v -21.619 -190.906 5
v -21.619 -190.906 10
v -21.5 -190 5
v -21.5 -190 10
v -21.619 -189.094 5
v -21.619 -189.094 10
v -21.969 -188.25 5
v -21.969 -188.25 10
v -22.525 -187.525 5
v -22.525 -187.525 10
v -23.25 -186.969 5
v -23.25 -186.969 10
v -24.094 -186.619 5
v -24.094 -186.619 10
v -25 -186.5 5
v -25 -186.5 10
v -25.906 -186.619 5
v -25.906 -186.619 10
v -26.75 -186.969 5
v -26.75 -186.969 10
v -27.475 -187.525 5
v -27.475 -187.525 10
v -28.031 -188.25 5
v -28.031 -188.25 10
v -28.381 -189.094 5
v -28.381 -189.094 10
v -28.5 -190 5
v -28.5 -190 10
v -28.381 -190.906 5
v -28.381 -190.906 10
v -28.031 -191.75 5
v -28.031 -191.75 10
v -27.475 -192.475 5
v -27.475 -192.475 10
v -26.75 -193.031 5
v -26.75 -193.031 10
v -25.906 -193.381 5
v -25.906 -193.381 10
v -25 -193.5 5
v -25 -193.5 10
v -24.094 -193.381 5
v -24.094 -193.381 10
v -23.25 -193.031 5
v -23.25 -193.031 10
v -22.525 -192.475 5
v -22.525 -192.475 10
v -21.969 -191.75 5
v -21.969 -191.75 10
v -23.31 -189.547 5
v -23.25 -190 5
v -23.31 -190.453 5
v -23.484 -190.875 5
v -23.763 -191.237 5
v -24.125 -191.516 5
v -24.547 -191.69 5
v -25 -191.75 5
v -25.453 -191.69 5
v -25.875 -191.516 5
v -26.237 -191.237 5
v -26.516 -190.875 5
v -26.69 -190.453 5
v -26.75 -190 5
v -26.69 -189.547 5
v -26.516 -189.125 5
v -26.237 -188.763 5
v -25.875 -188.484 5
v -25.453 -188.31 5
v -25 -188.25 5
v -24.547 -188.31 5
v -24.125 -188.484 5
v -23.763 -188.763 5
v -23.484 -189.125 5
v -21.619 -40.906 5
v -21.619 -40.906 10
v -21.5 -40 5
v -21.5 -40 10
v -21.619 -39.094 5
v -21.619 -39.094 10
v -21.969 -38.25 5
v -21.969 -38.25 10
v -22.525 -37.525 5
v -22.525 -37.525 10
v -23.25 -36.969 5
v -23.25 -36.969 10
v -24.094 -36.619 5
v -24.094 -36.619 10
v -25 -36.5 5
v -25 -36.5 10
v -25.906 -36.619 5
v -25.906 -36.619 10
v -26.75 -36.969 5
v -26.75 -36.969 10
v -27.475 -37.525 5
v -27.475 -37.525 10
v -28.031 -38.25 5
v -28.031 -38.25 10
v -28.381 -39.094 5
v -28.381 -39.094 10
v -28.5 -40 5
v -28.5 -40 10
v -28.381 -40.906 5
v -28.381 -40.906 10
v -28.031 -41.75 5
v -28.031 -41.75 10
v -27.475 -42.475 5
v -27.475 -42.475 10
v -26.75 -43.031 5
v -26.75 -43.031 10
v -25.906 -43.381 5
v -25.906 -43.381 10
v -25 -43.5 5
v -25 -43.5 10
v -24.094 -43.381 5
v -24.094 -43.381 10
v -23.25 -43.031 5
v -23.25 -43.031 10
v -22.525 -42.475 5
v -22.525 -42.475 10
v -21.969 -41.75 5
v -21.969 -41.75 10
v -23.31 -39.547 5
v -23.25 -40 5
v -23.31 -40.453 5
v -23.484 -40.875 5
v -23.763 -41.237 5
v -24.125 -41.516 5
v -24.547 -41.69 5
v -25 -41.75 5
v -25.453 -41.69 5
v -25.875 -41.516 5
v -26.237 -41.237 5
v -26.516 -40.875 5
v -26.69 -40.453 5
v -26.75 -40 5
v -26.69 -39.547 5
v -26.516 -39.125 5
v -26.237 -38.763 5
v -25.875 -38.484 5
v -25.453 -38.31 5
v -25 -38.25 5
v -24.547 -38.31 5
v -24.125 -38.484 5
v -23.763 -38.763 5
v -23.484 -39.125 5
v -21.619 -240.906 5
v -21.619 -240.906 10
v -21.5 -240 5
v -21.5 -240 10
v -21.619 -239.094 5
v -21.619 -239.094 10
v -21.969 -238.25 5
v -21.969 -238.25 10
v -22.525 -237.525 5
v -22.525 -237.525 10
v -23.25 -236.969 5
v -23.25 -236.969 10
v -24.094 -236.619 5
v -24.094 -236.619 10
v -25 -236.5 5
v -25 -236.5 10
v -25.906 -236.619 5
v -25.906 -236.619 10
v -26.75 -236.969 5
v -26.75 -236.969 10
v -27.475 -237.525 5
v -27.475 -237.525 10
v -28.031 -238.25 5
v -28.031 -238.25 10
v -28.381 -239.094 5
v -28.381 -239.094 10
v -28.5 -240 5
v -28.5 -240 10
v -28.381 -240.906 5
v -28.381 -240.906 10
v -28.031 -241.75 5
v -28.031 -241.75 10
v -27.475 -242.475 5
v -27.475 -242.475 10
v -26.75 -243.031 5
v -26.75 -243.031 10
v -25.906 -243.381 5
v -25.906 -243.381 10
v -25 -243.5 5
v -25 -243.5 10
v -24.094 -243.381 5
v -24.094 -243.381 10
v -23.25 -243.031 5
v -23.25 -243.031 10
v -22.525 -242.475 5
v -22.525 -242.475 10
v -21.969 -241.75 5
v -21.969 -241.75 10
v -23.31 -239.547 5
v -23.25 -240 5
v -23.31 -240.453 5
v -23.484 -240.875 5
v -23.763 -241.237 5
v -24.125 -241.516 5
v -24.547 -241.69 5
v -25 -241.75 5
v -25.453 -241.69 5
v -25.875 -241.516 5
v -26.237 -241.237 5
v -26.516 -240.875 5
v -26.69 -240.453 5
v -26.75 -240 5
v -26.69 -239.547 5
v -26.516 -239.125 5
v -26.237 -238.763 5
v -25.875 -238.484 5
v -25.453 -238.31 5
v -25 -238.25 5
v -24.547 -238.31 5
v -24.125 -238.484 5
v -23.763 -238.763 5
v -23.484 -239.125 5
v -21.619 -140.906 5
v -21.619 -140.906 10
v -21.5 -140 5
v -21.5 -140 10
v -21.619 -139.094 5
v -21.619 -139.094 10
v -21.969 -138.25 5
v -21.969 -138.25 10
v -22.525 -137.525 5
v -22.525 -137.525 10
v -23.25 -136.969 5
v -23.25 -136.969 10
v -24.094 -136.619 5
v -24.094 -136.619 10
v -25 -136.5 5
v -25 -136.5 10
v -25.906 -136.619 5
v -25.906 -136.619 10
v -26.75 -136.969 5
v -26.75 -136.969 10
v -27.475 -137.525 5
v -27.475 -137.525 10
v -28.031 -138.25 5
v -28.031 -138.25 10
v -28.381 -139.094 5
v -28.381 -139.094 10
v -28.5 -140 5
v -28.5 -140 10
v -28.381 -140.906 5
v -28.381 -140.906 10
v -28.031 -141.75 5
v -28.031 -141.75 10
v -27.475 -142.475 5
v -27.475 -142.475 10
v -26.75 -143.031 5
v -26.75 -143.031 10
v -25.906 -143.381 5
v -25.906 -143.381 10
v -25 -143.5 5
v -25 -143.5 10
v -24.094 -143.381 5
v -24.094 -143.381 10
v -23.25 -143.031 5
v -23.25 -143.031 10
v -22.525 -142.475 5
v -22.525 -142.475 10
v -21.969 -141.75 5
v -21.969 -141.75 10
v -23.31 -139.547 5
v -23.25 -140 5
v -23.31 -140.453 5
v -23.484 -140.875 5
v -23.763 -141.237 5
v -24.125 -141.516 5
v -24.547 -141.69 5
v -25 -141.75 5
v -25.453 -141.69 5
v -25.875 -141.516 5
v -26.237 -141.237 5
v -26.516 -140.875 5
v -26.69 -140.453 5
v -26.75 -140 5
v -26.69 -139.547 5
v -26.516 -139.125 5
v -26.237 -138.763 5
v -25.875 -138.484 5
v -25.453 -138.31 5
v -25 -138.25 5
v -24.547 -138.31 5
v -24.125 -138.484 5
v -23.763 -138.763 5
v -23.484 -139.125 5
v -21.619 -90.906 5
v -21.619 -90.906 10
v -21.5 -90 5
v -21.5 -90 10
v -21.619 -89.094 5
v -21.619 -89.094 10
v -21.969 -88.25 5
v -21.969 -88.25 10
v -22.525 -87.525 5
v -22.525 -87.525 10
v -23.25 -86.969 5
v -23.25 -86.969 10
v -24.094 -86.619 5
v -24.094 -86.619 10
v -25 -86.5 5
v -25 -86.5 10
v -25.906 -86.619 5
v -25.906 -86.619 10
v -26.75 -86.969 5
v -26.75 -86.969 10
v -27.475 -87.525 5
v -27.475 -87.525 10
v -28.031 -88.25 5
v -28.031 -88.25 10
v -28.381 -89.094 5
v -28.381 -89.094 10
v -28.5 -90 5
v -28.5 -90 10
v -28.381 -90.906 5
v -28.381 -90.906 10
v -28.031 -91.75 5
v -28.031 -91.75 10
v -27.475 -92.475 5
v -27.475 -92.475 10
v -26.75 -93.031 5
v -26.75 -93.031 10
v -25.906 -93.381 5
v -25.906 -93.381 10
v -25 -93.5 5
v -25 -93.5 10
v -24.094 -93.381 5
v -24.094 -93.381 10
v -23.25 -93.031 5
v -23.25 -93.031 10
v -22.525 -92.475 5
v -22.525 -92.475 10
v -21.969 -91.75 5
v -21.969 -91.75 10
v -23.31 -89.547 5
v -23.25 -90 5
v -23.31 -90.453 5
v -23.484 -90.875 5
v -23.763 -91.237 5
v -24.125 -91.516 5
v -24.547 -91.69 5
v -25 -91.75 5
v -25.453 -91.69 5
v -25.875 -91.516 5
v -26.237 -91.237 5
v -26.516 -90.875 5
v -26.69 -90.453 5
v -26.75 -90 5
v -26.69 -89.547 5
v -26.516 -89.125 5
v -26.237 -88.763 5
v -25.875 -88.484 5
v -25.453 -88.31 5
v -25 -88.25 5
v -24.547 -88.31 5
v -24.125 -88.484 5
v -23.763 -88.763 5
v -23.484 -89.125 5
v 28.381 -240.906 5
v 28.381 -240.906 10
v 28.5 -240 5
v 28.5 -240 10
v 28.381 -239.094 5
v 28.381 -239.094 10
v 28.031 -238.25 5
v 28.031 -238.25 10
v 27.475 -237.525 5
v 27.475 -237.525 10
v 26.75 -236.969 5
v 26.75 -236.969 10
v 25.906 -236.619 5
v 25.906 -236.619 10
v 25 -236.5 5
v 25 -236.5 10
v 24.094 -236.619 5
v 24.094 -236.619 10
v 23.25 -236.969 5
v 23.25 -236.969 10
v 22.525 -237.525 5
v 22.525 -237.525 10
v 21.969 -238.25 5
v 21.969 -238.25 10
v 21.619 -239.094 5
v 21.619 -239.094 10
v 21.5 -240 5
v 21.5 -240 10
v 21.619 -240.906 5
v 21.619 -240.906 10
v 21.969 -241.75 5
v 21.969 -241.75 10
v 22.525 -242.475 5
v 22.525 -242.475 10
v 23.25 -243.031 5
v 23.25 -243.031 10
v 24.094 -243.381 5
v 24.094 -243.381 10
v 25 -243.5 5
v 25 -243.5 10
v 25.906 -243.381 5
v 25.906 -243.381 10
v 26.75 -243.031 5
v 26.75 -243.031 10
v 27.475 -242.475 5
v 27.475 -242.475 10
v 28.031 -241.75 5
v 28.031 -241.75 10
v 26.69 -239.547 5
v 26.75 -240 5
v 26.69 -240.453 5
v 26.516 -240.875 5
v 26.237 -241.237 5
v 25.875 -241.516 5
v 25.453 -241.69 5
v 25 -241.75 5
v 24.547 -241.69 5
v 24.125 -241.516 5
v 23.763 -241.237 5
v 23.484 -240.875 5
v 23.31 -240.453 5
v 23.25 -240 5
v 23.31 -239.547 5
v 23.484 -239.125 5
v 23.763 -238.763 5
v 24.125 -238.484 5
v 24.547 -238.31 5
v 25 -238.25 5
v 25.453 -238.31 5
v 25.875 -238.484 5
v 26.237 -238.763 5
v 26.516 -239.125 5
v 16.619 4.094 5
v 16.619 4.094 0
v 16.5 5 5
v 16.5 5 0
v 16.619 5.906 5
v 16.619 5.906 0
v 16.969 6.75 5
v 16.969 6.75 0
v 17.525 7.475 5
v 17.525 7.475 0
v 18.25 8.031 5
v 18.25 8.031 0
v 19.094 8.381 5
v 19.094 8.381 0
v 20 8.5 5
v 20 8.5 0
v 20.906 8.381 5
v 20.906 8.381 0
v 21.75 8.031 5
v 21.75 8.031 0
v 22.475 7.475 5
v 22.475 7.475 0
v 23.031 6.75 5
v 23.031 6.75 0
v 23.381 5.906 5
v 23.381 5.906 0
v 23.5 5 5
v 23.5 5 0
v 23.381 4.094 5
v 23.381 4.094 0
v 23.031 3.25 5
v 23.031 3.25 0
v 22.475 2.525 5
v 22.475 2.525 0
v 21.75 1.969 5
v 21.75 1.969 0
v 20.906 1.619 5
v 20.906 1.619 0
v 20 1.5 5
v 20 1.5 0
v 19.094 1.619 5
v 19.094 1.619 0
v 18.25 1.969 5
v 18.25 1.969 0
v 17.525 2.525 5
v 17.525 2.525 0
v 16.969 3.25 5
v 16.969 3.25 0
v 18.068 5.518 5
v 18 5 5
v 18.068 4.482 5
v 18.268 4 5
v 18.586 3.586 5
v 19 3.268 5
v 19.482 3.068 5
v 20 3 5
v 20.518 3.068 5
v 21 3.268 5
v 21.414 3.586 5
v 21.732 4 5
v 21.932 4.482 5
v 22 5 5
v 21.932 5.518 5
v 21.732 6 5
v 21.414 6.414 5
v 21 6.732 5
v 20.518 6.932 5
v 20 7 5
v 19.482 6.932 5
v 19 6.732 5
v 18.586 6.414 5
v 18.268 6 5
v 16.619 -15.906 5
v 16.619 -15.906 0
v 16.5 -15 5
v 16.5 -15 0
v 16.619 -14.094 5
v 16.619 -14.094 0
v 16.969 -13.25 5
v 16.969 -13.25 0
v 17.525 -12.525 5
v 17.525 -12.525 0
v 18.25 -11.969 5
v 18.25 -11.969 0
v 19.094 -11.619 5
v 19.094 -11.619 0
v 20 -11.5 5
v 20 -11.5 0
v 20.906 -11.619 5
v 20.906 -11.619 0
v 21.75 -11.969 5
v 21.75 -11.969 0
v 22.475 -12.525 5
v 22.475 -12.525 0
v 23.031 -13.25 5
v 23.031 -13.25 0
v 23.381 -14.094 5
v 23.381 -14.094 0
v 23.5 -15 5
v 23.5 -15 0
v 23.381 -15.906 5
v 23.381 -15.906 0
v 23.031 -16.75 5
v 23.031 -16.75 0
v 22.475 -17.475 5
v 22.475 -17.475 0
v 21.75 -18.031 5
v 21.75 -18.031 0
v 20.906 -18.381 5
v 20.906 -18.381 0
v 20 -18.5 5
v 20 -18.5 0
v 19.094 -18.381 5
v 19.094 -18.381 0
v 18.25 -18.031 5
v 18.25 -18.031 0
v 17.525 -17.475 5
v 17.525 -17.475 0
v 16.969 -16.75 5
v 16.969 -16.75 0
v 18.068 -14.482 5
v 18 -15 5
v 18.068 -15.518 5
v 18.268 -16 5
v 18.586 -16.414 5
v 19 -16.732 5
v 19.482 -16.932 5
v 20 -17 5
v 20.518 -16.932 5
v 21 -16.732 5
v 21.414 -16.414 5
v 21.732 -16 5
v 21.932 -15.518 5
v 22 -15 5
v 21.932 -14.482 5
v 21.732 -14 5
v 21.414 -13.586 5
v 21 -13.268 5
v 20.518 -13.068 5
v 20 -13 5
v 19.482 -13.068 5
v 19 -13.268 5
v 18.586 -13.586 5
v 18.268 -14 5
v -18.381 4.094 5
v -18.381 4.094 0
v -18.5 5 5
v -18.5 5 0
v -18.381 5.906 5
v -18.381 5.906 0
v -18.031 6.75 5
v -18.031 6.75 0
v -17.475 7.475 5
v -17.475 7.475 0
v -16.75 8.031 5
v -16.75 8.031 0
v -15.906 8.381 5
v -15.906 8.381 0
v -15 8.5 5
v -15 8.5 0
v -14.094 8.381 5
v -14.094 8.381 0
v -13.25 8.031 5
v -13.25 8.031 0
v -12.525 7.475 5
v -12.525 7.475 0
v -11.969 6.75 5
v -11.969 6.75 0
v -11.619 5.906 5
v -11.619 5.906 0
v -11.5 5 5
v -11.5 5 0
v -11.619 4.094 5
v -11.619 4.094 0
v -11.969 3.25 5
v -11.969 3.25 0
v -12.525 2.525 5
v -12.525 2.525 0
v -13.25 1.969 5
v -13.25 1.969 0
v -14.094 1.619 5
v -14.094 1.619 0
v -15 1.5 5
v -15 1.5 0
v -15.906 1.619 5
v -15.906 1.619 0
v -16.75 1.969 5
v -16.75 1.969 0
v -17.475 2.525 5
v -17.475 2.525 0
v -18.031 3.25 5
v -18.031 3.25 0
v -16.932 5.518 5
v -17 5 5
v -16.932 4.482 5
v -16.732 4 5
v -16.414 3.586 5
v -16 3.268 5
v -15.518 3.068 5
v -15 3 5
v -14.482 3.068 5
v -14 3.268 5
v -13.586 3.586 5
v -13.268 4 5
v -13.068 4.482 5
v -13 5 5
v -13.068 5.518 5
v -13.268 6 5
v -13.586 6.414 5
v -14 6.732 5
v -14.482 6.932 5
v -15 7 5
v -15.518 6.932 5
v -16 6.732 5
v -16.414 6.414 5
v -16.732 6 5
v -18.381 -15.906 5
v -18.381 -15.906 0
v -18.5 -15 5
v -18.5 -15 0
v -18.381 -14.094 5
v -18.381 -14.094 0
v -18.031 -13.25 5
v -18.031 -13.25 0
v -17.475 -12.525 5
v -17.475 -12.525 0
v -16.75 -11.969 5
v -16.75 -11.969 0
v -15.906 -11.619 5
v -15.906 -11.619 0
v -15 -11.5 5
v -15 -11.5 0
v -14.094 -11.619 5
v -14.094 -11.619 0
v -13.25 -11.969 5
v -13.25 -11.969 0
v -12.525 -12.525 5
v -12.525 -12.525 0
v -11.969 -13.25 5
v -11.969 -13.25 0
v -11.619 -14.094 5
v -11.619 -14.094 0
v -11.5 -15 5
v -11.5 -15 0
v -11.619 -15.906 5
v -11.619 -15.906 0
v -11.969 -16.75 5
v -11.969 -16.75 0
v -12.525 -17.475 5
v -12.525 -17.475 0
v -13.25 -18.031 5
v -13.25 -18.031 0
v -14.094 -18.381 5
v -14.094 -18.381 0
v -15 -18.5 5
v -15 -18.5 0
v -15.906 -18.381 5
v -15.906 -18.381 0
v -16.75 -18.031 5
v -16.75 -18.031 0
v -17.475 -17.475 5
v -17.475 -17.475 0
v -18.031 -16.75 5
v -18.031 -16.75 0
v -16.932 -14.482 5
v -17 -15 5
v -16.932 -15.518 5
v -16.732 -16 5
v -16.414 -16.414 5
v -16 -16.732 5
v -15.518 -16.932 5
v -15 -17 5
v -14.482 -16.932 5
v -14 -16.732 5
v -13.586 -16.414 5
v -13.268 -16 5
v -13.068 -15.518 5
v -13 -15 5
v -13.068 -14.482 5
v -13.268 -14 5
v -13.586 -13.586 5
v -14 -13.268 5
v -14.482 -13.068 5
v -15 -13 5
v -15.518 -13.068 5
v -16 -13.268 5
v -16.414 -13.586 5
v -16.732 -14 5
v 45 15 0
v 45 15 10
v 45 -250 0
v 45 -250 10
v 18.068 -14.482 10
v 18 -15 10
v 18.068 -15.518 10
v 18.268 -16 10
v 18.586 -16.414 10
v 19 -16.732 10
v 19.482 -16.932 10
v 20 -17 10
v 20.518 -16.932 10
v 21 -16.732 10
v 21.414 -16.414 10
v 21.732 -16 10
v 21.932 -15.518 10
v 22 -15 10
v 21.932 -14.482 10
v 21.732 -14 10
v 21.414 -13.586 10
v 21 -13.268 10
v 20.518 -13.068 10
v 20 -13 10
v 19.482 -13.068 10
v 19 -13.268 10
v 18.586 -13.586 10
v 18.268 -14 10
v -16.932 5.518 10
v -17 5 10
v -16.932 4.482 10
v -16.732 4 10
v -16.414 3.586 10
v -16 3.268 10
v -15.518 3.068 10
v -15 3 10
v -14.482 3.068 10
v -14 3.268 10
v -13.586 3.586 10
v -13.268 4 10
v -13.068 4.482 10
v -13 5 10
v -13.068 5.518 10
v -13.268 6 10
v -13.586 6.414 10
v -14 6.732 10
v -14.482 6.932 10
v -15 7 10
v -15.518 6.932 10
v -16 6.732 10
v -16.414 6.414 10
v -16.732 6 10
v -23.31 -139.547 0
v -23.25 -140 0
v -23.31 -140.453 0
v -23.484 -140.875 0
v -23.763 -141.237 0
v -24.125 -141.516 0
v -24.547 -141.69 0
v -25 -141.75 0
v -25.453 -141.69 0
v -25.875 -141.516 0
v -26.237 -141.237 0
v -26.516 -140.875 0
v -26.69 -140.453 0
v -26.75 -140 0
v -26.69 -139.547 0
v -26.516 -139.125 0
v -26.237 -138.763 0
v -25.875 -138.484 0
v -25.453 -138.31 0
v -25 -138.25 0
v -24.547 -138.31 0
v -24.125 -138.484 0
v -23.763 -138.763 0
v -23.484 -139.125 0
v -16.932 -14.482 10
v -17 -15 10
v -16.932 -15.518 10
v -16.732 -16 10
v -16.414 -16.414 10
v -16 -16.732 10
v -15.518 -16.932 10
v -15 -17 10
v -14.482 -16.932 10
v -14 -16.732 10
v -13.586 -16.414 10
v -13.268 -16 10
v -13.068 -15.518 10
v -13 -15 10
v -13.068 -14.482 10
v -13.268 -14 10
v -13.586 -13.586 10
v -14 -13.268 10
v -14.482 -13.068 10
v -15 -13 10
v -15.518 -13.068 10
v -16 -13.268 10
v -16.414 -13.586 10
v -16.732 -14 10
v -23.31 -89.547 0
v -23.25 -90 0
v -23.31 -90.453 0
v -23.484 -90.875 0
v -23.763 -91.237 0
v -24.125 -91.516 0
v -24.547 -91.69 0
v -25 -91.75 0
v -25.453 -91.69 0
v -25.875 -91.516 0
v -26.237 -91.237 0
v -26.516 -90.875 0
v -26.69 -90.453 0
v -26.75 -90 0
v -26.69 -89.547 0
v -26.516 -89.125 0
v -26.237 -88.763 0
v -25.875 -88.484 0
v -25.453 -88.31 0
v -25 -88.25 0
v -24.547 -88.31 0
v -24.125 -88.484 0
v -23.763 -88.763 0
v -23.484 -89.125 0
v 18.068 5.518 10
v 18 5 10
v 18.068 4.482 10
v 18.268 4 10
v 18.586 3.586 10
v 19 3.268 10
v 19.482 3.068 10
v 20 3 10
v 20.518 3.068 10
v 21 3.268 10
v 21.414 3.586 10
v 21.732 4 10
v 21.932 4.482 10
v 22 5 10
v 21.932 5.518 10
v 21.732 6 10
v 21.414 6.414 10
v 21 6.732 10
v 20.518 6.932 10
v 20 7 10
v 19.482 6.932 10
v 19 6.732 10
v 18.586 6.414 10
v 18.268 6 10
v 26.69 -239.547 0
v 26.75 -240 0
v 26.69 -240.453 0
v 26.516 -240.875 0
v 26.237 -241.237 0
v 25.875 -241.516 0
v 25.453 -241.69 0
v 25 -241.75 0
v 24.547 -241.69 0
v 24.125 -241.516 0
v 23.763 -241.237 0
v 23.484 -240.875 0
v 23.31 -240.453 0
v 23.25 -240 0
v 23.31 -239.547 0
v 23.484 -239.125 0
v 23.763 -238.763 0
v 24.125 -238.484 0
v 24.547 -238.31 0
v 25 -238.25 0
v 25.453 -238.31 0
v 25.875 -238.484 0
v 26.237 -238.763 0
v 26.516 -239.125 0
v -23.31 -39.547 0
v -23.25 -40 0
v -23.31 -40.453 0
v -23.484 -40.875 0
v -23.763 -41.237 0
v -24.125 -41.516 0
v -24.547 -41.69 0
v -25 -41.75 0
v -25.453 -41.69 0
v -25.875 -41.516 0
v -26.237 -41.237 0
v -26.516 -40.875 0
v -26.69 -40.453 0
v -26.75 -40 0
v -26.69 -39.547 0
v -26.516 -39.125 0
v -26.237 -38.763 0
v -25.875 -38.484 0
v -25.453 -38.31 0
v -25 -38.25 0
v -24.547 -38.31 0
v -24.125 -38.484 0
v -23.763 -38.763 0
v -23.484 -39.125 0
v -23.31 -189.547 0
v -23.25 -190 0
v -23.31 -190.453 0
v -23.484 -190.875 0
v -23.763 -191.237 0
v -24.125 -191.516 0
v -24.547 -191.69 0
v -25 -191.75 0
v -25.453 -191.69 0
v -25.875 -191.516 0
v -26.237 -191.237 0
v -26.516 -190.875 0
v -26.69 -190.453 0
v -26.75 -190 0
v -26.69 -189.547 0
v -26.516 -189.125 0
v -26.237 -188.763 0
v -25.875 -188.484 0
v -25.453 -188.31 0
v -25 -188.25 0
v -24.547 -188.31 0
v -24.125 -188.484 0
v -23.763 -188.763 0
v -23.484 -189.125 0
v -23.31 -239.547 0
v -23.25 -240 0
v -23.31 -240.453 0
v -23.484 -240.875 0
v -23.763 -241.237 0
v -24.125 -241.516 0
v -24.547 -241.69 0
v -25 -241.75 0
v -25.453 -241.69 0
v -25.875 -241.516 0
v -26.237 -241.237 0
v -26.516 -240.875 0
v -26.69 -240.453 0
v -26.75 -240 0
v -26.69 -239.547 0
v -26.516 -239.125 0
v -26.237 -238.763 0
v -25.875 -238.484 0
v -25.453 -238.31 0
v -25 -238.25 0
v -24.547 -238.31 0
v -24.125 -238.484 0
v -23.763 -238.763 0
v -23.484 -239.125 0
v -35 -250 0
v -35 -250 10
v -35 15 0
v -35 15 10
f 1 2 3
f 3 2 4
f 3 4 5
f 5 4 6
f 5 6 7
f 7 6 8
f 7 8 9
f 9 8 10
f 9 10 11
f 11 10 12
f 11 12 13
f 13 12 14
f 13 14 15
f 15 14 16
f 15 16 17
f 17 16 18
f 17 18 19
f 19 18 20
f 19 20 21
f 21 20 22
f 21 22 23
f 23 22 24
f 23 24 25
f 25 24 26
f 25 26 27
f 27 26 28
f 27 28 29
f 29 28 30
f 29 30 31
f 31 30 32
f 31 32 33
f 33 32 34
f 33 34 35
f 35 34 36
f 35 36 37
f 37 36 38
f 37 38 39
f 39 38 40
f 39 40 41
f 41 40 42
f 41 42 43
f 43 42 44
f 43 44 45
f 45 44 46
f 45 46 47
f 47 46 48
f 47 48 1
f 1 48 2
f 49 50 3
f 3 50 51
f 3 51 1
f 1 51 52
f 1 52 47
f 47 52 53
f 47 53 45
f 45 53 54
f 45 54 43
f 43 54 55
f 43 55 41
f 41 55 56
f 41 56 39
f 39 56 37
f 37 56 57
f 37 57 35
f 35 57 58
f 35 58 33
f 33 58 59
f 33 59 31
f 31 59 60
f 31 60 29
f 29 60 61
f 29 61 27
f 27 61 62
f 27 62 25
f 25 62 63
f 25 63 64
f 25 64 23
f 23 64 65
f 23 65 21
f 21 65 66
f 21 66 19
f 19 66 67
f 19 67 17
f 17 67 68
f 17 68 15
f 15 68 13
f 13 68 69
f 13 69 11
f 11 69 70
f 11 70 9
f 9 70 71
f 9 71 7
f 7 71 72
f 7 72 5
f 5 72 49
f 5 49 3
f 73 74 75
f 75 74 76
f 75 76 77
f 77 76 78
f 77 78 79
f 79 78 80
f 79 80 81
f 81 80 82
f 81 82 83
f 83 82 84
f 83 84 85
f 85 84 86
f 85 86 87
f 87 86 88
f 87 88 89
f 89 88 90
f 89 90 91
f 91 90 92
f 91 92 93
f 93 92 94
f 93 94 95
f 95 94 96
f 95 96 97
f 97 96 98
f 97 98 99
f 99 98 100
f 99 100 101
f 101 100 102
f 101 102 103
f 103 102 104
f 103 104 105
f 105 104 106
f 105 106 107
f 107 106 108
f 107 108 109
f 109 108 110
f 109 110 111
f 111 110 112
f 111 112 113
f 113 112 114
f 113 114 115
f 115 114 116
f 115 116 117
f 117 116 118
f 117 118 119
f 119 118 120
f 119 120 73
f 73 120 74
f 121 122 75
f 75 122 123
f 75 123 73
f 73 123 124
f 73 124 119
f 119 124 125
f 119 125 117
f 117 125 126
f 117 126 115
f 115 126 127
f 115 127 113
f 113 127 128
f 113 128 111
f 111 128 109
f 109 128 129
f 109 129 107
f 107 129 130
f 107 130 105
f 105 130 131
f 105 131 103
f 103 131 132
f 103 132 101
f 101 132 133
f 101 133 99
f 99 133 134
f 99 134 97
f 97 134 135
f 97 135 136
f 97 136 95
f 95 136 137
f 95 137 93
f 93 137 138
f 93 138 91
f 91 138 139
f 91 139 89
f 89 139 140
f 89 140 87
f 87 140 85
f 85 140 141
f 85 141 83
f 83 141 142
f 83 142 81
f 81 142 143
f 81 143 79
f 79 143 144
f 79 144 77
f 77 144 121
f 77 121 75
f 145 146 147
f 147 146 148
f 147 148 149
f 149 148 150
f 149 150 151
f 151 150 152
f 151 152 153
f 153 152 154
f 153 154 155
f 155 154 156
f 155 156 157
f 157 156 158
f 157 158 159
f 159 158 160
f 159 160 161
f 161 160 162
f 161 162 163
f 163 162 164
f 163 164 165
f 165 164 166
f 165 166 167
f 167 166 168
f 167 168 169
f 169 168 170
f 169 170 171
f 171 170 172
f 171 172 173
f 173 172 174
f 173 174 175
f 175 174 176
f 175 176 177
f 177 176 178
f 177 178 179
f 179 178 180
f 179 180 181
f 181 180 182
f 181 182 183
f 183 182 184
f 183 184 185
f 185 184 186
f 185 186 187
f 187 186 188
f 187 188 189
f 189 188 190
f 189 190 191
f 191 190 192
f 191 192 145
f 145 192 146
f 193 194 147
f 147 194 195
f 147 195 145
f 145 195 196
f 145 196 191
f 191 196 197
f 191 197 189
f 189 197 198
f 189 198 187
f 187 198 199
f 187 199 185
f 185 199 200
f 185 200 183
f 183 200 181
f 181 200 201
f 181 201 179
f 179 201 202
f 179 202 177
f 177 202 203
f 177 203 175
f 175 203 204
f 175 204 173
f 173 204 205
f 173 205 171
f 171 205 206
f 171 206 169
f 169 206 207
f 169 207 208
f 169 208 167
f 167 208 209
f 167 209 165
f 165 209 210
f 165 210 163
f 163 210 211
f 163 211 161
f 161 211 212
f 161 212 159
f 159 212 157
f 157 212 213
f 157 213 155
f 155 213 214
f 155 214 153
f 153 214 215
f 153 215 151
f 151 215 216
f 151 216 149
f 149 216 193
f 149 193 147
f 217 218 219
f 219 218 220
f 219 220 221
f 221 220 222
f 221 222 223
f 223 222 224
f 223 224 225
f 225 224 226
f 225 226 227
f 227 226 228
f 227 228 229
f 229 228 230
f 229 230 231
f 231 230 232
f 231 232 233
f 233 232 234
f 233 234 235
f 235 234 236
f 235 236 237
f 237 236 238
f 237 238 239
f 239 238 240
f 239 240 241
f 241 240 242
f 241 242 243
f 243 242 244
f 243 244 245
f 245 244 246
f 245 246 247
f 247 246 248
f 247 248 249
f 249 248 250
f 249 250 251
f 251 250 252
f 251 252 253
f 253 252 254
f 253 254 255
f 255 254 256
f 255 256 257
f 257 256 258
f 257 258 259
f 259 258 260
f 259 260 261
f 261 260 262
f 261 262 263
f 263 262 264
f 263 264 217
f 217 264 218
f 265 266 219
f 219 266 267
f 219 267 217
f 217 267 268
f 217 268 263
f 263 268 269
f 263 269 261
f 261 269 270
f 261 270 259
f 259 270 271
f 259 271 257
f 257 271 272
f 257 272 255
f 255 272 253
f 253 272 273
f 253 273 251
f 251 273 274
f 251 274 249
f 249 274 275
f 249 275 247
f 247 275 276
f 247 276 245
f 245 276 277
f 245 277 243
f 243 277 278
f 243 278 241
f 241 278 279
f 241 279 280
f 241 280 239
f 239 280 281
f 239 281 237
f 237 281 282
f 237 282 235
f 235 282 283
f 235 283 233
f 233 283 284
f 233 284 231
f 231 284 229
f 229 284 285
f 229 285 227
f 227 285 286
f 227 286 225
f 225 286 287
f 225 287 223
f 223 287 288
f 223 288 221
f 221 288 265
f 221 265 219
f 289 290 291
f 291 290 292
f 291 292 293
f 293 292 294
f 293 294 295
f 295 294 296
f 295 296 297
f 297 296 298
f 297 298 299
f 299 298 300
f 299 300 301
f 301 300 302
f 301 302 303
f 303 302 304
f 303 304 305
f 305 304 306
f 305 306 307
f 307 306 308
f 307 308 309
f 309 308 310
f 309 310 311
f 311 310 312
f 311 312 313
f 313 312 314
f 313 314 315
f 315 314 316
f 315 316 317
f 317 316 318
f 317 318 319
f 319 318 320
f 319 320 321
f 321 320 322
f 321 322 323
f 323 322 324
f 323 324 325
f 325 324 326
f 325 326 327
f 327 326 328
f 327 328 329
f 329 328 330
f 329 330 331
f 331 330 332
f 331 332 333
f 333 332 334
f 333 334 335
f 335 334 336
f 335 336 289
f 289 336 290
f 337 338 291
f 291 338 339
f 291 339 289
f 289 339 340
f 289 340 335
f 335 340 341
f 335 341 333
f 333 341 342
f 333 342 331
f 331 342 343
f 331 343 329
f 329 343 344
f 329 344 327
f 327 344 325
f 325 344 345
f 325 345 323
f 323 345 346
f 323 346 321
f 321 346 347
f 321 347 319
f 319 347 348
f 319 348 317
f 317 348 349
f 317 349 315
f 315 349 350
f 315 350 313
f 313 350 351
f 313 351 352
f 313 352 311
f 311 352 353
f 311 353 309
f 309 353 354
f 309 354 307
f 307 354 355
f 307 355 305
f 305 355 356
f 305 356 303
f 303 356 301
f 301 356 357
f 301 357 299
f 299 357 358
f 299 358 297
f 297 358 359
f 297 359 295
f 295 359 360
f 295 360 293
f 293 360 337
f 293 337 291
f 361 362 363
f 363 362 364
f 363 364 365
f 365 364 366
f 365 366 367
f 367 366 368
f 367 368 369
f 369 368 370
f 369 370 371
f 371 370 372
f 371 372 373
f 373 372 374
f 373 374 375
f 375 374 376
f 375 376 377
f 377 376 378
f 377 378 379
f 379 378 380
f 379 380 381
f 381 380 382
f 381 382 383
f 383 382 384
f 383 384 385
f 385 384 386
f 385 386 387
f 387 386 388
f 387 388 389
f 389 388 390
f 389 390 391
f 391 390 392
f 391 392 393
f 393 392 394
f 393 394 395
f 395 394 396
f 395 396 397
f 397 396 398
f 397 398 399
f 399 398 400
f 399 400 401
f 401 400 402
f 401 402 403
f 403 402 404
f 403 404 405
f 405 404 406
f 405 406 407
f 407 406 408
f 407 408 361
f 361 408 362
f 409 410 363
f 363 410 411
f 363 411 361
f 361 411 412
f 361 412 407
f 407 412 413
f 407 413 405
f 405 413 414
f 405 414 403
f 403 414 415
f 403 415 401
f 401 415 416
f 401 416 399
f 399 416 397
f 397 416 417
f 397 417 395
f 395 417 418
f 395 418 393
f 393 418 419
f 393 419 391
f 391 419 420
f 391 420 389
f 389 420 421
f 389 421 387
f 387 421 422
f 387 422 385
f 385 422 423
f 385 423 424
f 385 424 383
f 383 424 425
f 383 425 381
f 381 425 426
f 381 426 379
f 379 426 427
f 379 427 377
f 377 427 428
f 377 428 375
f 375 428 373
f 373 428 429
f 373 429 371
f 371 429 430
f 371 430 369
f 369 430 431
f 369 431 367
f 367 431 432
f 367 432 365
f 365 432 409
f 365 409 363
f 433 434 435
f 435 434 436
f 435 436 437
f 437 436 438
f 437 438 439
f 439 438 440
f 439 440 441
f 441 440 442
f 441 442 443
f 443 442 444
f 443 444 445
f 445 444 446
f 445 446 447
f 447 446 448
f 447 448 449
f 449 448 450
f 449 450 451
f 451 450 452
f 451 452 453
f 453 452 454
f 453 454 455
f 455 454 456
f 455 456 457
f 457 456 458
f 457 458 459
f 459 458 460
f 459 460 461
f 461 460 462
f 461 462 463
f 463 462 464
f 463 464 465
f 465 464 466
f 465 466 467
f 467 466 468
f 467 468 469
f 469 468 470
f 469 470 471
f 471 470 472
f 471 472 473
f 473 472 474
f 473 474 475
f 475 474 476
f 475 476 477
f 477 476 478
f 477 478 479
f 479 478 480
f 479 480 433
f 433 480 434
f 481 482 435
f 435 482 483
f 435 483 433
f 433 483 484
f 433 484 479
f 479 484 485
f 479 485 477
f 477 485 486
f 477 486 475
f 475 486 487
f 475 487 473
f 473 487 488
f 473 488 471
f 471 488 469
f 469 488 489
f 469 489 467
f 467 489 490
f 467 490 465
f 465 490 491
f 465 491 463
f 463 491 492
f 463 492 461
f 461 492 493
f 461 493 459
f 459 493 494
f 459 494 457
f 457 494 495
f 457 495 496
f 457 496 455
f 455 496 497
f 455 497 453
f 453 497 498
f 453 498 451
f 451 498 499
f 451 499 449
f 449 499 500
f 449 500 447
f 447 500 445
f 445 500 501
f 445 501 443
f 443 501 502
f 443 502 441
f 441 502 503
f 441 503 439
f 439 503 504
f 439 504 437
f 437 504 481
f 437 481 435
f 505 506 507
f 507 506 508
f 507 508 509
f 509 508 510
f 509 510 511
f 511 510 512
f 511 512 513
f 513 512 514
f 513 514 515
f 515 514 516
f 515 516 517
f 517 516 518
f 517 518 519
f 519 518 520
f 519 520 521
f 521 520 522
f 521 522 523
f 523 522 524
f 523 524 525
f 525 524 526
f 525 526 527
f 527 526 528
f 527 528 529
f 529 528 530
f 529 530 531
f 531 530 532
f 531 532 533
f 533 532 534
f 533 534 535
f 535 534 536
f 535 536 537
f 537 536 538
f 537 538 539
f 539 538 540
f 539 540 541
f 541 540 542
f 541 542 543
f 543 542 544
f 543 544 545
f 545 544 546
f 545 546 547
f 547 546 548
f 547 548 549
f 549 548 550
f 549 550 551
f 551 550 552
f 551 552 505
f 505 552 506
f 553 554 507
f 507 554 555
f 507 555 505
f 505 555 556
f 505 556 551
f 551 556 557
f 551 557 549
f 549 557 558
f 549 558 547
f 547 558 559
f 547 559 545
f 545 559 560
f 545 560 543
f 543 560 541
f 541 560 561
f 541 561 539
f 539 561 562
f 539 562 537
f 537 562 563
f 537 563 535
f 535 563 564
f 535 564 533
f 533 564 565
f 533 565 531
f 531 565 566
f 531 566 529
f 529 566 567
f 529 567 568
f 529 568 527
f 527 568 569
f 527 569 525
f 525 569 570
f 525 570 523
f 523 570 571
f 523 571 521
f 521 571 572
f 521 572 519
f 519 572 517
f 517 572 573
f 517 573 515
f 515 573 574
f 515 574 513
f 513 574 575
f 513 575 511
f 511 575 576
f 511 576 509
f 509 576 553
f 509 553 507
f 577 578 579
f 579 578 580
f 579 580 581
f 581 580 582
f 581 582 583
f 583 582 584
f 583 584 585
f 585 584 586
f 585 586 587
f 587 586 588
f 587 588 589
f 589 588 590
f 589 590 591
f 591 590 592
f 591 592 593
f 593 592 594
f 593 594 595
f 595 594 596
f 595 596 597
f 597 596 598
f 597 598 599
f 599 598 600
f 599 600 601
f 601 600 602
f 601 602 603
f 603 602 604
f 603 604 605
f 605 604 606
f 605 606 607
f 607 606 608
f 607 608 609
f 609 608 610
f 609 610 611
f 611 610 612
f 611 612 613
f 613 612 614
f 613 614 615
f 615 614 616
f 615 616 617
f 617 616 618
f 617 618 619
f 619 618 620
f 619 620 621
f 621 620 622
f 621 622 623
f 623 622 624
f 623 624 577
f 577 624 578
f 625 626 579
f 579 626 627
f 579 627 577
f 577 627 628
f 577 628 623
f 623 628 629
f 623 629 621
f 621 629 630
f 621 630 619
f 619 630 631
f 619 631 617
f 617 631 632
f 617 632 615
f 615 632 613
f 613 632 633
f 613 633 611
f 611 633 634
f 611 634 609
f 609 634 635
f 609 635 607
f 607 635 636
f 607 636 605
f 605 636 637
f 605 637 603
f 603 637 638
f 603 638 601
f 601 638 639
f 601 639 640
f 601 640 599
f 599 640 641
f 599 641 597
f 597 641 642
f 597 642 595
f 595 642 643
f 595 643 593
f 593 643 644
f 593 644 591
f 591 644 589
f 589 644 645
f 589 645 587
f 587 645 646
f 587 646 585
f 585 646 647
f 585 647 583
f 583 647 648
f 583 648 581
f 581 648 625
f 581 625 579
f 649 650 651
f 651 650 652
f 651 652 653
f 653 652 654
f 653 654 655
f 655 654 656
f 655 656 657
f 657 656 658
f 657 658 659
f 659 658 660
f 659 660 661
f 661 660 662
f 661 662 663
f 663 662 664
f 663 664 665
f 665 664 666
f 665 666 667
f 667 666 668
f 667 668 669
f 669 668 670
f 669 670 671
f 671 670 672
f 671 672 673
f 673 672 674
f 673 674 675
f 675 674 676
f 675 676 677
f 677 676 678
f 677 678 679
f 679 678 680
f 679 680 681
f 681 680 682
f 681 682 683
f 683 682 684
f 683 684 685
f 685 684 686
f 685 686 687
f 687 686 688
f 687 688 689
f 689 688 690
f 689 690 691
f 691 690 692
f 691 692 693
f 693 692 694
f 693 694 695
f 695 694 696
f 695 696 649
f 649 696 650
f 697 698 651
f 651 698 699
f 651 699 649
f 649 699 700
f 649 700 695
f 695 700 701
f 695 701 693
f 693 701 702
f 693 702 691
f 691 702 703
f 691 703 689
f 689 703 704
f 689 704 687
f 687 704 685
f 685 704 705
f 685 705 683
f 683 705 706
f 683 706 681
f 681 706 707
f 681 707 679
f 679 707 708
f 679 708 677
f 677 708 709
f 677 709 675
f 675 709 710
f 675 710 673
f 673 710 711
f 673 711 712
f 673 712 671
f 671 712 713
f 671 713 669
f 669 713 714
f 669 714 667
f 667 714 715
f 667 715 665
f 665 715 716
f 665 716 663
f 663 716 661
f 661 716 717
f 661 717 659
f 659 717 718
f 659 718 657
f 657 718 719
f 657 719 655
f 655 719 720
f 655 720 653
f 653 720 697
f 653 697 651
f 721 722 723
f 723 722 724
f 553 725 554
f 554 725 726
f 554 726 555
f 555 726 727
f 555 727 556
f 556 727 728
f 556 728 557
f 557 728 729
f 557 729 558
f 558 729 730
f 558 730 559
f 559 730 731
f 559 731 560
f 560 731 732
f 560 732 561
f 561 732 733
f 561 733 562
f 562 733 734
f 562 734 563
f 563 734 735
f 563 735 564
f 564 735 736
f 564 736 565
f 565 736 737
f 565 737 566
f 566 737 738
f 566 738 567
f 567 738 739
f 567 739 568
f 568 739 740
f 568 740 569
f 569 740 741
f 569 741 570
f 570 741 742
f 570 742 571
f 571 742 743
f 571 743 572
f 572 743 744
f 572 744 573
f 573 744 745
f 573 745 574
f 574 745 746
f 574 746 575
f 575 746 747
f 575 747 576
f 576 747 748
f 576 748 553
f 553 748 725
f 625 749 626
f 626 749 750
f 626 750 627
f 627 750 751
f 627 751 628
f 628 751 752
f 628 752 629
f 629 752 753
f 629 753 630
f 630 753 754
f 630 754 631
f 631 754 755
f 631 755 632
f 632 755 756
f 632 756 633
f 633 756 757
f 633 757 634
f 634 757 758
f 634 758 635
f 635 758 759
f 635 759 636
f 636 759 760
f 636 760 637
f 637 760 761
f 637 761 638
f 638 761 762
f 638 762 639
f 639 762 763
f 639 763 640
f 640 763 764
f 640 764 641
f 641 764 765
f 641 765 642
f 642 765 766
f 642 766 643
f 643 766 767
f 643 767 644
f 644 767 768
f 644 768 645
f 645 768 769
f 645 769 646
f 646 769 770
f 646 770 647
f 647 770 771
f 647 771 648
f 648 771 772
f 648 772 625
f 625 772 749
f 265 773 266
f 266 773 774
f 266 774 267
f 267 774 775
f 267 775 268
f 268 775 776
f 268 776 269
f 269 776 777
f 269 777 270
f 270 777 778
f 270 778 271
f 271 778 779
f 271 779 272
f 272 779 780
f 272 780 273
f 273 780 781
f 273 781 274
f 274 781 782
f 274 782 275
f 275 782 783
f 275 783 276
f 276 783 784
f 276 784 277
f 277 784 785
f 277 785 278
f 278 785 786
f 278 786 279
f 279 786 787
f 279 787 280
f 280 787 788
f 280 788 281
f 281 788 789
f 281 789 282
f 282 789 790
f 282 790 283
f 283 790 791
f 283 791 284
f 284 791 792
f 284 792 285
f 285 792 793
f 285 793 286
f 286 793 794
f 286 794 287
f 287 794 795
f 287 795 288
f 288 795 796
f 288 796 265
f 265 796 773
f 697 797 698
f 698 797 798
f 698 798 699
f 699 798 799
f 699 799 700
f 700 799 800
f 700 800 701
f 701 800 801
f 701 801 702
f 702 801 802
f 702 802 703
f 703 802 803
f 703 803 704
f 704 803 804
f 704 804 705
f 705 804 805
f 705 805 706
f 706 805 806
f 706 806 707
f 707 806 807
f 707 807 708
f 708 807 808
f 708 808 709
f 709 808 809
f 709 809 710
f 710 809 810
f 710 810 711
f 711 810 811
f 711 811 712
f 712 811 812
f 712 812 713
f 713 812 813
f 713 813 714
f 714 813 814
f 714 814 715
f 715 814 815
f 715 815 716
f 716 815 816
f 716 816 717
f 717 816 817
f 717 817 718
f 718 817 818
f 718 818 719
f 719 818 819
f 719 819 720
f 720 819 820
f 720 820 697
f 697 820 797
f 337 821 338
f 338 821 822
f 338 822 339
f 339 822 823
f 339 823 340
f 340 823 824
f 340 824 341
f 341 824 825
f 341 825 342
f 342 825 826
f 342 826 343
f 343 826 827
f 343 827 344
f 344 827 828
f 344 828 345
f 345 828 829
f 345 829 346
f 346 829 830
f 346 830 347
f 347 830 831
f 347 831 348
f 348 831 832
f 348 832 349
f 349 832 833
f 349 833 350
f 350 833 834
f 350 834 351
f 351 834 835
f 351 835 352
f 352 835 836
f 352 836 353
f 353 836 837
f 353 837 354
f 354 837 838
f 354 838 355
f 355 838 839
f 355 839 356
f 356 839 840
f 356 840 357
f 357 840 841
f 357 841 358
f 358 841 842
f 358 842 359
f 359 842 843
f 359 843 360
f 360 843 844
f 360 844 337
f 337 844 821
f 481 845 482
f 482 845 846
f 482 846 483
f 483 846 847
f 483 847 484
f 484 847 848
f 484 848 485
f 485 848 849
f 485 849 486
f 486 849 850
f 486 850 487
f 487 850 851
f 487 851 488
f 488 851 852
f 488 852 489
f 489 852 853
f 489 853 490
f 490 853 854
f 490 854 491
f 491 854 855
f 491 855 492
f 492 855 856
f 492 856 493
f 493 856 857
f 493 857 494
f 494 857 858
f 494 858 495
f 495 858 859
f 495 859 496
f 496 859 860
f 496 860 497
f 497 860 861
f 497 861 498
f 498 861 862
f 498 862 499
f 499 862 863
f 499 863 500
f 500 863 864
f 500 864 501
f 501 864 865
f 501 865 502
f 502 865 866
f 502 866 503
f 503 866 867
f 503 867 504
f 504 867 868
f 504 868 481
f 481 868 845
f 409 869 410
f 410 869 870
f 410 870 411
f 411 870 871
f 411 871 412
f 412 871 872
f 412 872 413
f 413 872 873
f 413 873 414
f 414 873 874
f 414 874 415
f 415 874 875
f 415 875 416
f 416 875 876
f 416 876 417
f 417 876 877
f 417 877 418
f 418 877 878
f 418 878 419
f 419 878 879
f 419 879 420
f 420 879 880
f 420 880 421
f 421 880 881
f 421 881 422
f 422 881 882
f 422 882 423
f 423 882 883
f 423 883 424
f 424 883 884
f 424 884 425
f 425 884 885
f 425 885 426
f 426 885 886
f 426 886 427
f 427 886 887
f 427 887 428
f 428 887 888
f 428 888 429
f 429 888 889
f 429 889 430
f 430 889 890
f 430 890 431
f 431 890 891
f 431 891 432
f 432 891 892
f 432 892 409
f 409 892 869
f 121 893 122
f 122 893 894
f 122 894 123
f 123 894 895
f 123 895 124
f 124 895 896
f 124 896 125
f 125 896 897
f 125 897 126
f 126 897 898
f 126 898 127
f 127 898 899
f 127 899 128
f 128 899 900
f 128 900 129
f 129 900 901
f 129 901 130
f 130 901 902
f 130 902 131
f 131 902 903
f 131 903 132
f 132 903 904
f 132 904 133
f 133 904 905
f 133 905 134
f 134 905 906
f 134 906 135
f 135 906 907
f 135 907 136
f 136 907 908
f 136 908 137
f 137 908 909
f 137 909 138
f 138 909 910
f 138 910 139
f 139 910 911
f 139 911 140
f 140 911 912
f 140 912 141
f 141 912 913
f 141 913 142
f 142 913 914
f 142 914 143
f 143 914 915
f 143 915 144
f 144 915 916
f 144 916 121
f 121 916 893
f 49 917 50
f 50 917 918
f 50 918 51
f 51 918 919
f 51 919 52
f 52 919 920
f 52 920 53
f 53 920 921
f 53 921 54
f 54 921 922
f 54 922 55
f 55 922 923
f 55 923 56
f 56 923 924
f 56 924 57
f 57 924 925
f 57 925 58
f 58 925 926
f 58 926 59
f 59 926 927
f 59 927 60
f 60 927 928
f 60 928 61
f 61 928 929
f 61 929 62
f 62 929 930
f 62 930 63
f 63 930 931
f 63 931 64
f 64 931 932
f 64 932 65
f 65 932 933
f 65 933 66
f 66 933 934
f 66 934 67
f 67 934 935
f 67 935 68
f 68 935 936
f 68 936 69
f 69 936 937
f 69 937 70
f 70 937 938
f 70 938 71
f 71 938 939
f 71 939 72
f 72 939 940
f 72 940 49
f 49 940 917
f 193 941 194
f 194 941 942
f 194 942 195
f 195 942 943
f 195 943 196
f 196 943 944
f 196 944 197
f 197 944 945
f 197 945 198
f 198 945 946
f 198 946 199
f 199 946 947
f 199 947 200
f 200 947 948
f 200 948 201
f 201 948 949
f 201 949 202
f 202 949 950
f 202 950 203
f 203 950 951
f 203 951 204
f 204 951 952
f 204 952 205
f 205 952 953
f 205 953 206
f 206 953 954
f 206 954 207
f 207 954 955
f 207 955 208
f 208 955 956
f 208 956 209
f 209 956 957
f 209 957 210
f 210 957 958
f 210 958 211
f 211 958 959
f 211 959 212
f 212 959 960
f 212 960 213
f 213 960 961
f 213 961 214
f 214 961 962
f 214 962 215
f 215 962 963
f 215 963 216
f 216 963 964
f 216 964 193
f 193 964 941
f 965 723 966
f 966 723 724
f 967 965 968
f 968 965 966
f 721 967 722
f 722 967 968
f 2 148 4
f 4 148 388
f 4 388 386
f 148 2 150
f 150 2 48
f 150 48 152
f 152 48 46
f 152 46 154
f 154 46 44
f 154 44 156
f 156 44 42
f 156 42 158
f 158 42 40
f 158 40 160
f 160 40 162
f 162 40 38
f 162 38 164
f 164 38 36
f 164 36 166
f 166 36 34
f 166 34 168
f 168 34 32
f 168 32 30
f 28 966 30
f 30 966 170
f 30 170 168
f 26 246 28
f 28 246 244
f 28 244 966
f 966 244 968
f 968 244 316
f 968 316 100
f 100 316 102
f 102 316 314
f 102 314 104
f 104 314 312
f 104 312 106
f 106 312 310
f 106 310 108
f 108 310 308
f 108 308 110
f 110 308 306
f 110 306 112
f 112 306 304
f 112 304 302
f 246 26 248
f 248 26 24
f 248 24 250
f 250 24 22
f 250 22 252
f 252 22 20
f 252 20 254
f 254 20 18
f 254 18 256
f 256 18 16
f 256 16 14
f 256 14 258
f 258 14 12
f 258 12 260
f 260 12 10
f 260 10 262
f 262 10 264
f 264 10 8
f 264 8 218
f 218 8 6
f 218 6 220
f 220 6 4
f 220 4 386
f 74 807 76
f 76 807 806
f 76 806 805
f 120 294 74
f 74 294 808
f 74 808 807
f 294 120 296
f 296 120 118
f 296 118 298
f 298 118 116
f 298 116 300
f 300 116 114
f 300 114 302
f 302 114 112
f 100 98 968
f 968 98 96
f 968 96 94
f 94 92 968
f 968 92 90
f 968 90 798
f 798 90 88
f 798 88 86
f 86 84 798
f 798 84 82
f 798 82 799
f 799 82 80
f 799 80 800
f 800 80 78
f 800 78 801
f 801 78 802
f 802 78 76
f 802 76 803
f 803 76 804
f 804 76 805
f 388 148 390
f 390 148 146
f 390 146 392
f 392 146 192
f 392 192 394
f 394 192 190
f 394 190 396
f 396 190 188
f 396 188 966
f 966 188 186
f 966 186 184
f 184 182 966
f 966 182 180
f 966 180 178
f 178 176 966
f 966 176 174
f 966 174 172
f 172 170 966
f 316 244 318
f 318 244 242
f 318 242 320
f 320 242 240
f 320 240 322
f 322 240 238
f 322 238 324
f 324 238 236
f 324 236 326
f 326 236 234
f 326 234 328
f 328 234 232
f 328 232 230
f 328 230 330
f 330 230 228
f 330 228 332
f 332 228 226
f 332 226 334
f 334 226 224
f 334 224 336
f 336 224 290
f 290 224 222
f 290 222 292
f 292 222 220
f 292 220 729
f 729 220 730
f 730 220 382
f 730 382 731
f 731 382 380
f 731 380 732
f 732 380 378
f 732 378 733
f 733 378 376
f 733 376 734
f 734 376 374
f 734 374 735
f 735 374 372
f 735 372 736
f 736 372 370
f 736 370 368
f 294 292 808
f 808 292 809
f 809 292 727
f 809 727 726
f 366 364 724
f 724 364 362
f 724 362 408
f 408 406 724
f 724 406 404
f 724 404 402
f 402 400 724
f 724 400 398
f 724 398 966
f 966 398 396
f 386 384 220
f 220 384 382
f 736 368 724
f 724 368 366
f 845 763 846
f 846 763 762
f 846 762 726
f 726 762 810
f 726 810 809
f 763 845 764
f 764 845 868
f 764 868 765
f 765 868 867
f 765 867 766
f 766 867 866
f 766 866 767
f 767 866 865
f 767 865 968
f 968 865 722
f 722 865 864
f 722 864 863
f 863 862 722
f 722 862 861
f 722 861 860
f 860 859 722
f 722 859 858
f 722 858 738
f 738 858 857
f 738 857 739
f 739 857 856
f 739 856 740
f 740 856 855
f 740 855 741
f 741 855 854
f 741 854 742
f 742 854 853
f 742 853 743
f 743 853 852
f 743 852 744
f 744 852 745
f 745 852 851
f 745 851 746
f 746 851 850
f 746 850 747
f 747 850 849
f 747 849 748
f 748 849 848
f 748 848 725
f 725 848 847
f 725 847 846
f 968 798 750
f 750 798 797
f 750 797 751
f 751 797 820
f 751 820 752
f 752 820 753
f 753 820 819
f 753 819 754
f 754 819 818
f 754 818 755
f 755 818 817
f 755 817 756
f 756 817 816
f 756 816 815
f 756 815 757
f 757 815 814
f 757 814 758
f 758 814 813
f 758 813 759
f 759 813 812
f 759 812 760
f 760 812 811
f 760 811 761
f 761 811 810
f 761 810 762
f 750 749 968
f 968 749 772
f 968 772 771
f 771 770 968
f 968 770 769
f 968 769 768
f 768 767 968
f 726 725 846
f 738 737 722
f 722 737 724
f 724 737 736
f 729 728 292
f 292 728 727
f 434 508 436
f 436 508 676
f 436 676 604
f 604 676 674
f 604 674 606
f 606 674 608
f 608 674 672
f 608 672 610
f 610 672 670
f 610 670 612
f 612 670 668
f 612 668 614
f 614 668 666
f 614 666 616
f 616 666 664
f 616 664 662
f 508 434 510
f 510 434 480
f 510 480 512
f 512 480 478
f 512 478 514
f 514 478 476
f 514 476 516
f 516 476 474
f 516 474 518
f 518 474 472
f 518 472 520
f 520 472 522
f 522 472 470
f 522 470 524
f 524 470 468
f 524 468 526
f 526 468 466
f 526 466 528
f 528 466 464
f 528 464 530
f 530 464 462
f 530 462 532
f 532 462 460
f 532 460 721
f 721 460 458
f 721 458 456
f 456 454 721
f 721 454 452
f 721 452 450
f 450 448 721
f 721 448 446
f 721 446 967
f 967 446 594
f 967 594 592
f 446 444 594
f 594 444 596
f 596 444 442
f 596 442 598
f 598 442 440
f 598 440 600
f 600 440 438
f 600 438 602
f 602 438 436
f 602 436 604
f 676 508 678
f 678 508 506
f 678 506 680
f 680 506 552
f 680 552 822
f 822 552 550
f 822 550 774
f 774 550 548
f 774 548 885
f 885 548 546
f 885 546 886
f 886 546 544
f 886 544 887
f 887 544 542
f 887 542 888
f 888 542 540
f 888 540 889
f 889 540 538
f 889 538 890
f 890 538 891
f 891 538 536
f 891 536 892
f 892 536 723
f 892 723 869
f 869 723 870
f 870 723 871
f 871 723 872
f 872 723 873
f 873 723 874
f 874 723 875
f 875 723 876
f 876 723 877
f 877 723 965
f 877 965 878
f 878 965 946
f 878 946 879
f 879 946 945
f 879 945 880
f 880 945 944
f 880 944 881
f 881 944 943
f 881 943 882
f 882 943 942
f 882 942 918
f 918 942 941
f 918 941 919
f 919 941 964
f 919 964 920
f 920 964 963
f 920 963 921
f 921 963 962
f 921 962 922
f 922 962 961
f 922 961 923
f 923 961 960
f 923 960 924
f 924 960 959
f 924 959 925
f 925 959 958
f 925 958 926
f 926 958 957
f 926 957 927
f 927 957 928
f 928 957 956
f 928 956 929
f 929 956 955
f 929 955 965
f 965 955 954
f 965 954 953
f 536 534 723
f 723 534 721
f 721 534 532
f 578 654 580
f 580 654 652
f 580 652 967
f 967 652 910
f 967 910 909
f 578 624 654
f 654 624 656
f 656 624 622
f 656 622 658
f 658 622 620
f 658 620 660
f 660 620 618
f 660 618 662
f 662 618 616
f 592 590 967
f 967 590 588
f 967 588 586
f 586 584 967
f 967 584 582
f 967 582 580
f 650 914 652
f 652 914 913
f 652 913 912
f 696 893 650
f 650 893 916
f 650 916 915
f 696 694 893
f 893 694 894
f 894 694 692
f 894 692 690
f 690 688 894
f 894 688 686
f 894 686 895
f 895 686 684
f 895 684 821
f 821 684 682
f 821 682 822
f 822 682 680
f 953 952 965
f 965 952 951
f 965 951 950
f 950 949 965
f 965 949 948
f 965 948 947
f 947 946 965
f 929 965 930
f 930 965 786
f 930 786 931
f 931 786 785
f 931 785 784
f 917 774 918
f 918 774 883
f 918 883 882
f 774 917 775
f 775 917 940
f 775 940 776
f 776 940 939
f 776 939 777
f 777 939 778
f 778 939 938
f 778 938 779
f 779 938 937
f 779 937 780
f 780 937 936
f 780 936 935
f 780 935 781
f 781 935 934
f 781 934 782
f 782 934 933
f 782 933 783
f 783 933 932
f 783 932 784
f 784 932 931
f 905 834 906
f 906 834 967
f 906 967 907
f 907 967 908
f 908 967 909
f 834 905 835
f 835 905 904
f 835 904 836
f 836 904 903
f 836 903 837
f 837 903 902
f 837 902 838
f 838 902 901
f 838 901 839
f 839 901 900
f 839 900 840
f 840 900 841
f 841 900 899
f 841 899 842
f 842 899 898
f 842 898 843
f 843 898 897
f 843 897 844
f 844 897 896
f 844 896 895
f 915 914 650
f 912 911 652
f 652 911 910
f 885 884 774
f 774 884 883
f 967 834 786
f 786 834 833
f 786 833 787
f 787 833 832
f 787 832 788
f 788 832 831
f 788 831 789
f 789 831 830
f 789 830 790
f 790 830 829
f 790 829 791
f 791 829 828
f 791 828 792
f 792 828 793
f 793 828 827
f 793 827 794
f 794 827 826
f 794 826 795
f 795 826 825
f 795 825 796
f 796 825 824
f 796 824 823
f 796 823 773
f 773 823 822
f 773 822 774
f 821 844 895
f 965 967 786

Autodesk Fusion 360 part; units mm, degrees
sketch "Szkic1" plane through (0, 0, 0) normal (0, 0, 1) x (1, 0, 0)
  circle A0 centre (-15, -15) radius 2
  circle A1 centre (-15, 5) radius 2
  circle A2 centre (20, 5) radius 2
  circle A3 centre (-15, 5) radius 2
  line L0 (-35, 0) -> (-35, 15)
  line L1 (-10, -40) -> (-35, -40)
  circle A4 centre (20, -15) radius 2
  line L2 (-35, -40) -> (35, -40)
  circle A5 centre (-15, -15) radius 2
  line L3 (-35, 15) -> (-10, 15)
  line L4 (35, -40) -> (35, 15)
  line L5 (-35, -40) -> (-35, 0)
  line L6 (-35, 15) -> (-35, -40)
  line L7 (35, 15) -> (-35, 15)
  line L8 (-10, 15) -> (-10, -40)
  line L9 (-35, -40) -> (-35, -250)
  line L10 (35, -40) -> (35, -250)
  line L11 (-35, -250) -> (35, -250)
  circle A6 centre (-25, -240) radius 1.75
  circle A7 centre (25, -240) radius 1.75
  circle A8 centre (-25, -190) radius 1.75
  circle A9 centre (-25, -140) radius 1.75
  circle A10 centre (-25, -90) radius 1.75
  circle A11 centre (-25, -40) radius 1.75
  dimension "d10" = 4
  dimension "d11" = 4
  dimension "d12" = 4
  dimension "d13" = 210
  dimension "d14" = 210
  dimension "d15" = 3.5
  dimension "d16" = 3.5
  dimension "d17" = 3.5
  dimension "d18" = 3.5
  dimension "d19" = 3.5
  dimension "d20" = 3.5
extrude "Wyciągnięcie proste1" add sketch "Szkic1" along normal blind 10 contours L0 L1 L2 L3 L5 L6 L7 L8 A11 | L1 L2 L9 L10 L11 A11 | L2 L4 L7 L8
extrude "Wyciągnięcie proste2" add 2 faces at (35, -110, 6.6667) (35, -21.6667, 3.3333) along direction (1, 0, 0) blind 10
sketch "Szkic2" plane through (0, 0, 0) normal (0, 0, -1) x (1, 0, 0)
  circle A0 centre (-25, 240) radius 1.75
  circle A1 centre (-25, 190) radius 1.75
  circle A2 centre (-25, 40) radius 1.75
  circle A3 centre (25, 240) radius 1.75
  circle A4 centre (20, -5) radius 2
  circle A5 centre (-25, 90) radius 1.75
  circle A6 centre (-15, 15) radius 2
  circle A7 centre (-25, 140) radius 1.75
  circle A8 centre (-15, -5) radius 2
  circle A9 centre (20, 15) radius 2
  line L0 (45, 250) -> (-35, 250)
  line L1 (-35, 250) -> (-35, -15)
  line L2 (-35, -15) -> (45, -15)
  line L3 (45, -15) -> (45, 250)
  circle A10 centre (-15, -5) radius 3.5
  circle A11 centre (20, -5) radius 3.5
  circle A12 centre (-15, 15) radius 3.5
  circle A13 centre (20, 15) radius 3.5
  dimension "d25" = 7
  dimension "d26" = 7
  dimension "d27" = 7
  dimension "d28" = 7
extrude "Wyciągnięcie proste3" cut sketch "Szkic2" against normal blind 5 contours A10 | A11 | A12 | A13
sketch "Szkic3" plane through (0, 0, 10) normal (0, 0, 1) x (-1, 0, 0)
  circle A0 centre (25, 240) radius 1.75
  circle A1 centre (25, 190) radius 1.75
  circle A2 centre (25, 40) radius 1.75
  circle A3 centre (-25, 240) radius 1.75
  circle A4 centre (-20, -5) radius 2
  circle A5 centre (25, 90) radius 1.75
  circle A6 centre (15, 15) radius 2
  circle A7 centre (25, 140) radius 1.75
  circle A8 centre (15, -5) radius 2
  circle A9 centre (-20, 15) radius 2
  line L0 (-45, -15) -> (35, -15)
  line L1 (35, -15) -> (35, 250)
  line L2 (35, 250) -> (-45, 250)
  line L3 (-45, 250) -> (-45, -15)
  circle A10 centre (-25, 240) radius 3.5
  circle A11 centre (25, 240) radius 3.5
  circle A12 centre (25, 190) radius 3.5
  circle A13 centre (25, 140) radius 3.5
  circle A14 centre (25, 90) radius 3.5
  circle A15 centre (25, 40) radius 3.5
  dimension "d31" = 7
  dimension "d32" = 7
  dimension "d33" = 7
  dimension "d34" = 7
  dimension "d35" = 7
  dimension "d36" = 7
extrude "Wyciągnięcie proste4" cut sketch "Szkic3" against normal blind 5 contours A10 | A11 | A12 | A13 | A14 | A15
